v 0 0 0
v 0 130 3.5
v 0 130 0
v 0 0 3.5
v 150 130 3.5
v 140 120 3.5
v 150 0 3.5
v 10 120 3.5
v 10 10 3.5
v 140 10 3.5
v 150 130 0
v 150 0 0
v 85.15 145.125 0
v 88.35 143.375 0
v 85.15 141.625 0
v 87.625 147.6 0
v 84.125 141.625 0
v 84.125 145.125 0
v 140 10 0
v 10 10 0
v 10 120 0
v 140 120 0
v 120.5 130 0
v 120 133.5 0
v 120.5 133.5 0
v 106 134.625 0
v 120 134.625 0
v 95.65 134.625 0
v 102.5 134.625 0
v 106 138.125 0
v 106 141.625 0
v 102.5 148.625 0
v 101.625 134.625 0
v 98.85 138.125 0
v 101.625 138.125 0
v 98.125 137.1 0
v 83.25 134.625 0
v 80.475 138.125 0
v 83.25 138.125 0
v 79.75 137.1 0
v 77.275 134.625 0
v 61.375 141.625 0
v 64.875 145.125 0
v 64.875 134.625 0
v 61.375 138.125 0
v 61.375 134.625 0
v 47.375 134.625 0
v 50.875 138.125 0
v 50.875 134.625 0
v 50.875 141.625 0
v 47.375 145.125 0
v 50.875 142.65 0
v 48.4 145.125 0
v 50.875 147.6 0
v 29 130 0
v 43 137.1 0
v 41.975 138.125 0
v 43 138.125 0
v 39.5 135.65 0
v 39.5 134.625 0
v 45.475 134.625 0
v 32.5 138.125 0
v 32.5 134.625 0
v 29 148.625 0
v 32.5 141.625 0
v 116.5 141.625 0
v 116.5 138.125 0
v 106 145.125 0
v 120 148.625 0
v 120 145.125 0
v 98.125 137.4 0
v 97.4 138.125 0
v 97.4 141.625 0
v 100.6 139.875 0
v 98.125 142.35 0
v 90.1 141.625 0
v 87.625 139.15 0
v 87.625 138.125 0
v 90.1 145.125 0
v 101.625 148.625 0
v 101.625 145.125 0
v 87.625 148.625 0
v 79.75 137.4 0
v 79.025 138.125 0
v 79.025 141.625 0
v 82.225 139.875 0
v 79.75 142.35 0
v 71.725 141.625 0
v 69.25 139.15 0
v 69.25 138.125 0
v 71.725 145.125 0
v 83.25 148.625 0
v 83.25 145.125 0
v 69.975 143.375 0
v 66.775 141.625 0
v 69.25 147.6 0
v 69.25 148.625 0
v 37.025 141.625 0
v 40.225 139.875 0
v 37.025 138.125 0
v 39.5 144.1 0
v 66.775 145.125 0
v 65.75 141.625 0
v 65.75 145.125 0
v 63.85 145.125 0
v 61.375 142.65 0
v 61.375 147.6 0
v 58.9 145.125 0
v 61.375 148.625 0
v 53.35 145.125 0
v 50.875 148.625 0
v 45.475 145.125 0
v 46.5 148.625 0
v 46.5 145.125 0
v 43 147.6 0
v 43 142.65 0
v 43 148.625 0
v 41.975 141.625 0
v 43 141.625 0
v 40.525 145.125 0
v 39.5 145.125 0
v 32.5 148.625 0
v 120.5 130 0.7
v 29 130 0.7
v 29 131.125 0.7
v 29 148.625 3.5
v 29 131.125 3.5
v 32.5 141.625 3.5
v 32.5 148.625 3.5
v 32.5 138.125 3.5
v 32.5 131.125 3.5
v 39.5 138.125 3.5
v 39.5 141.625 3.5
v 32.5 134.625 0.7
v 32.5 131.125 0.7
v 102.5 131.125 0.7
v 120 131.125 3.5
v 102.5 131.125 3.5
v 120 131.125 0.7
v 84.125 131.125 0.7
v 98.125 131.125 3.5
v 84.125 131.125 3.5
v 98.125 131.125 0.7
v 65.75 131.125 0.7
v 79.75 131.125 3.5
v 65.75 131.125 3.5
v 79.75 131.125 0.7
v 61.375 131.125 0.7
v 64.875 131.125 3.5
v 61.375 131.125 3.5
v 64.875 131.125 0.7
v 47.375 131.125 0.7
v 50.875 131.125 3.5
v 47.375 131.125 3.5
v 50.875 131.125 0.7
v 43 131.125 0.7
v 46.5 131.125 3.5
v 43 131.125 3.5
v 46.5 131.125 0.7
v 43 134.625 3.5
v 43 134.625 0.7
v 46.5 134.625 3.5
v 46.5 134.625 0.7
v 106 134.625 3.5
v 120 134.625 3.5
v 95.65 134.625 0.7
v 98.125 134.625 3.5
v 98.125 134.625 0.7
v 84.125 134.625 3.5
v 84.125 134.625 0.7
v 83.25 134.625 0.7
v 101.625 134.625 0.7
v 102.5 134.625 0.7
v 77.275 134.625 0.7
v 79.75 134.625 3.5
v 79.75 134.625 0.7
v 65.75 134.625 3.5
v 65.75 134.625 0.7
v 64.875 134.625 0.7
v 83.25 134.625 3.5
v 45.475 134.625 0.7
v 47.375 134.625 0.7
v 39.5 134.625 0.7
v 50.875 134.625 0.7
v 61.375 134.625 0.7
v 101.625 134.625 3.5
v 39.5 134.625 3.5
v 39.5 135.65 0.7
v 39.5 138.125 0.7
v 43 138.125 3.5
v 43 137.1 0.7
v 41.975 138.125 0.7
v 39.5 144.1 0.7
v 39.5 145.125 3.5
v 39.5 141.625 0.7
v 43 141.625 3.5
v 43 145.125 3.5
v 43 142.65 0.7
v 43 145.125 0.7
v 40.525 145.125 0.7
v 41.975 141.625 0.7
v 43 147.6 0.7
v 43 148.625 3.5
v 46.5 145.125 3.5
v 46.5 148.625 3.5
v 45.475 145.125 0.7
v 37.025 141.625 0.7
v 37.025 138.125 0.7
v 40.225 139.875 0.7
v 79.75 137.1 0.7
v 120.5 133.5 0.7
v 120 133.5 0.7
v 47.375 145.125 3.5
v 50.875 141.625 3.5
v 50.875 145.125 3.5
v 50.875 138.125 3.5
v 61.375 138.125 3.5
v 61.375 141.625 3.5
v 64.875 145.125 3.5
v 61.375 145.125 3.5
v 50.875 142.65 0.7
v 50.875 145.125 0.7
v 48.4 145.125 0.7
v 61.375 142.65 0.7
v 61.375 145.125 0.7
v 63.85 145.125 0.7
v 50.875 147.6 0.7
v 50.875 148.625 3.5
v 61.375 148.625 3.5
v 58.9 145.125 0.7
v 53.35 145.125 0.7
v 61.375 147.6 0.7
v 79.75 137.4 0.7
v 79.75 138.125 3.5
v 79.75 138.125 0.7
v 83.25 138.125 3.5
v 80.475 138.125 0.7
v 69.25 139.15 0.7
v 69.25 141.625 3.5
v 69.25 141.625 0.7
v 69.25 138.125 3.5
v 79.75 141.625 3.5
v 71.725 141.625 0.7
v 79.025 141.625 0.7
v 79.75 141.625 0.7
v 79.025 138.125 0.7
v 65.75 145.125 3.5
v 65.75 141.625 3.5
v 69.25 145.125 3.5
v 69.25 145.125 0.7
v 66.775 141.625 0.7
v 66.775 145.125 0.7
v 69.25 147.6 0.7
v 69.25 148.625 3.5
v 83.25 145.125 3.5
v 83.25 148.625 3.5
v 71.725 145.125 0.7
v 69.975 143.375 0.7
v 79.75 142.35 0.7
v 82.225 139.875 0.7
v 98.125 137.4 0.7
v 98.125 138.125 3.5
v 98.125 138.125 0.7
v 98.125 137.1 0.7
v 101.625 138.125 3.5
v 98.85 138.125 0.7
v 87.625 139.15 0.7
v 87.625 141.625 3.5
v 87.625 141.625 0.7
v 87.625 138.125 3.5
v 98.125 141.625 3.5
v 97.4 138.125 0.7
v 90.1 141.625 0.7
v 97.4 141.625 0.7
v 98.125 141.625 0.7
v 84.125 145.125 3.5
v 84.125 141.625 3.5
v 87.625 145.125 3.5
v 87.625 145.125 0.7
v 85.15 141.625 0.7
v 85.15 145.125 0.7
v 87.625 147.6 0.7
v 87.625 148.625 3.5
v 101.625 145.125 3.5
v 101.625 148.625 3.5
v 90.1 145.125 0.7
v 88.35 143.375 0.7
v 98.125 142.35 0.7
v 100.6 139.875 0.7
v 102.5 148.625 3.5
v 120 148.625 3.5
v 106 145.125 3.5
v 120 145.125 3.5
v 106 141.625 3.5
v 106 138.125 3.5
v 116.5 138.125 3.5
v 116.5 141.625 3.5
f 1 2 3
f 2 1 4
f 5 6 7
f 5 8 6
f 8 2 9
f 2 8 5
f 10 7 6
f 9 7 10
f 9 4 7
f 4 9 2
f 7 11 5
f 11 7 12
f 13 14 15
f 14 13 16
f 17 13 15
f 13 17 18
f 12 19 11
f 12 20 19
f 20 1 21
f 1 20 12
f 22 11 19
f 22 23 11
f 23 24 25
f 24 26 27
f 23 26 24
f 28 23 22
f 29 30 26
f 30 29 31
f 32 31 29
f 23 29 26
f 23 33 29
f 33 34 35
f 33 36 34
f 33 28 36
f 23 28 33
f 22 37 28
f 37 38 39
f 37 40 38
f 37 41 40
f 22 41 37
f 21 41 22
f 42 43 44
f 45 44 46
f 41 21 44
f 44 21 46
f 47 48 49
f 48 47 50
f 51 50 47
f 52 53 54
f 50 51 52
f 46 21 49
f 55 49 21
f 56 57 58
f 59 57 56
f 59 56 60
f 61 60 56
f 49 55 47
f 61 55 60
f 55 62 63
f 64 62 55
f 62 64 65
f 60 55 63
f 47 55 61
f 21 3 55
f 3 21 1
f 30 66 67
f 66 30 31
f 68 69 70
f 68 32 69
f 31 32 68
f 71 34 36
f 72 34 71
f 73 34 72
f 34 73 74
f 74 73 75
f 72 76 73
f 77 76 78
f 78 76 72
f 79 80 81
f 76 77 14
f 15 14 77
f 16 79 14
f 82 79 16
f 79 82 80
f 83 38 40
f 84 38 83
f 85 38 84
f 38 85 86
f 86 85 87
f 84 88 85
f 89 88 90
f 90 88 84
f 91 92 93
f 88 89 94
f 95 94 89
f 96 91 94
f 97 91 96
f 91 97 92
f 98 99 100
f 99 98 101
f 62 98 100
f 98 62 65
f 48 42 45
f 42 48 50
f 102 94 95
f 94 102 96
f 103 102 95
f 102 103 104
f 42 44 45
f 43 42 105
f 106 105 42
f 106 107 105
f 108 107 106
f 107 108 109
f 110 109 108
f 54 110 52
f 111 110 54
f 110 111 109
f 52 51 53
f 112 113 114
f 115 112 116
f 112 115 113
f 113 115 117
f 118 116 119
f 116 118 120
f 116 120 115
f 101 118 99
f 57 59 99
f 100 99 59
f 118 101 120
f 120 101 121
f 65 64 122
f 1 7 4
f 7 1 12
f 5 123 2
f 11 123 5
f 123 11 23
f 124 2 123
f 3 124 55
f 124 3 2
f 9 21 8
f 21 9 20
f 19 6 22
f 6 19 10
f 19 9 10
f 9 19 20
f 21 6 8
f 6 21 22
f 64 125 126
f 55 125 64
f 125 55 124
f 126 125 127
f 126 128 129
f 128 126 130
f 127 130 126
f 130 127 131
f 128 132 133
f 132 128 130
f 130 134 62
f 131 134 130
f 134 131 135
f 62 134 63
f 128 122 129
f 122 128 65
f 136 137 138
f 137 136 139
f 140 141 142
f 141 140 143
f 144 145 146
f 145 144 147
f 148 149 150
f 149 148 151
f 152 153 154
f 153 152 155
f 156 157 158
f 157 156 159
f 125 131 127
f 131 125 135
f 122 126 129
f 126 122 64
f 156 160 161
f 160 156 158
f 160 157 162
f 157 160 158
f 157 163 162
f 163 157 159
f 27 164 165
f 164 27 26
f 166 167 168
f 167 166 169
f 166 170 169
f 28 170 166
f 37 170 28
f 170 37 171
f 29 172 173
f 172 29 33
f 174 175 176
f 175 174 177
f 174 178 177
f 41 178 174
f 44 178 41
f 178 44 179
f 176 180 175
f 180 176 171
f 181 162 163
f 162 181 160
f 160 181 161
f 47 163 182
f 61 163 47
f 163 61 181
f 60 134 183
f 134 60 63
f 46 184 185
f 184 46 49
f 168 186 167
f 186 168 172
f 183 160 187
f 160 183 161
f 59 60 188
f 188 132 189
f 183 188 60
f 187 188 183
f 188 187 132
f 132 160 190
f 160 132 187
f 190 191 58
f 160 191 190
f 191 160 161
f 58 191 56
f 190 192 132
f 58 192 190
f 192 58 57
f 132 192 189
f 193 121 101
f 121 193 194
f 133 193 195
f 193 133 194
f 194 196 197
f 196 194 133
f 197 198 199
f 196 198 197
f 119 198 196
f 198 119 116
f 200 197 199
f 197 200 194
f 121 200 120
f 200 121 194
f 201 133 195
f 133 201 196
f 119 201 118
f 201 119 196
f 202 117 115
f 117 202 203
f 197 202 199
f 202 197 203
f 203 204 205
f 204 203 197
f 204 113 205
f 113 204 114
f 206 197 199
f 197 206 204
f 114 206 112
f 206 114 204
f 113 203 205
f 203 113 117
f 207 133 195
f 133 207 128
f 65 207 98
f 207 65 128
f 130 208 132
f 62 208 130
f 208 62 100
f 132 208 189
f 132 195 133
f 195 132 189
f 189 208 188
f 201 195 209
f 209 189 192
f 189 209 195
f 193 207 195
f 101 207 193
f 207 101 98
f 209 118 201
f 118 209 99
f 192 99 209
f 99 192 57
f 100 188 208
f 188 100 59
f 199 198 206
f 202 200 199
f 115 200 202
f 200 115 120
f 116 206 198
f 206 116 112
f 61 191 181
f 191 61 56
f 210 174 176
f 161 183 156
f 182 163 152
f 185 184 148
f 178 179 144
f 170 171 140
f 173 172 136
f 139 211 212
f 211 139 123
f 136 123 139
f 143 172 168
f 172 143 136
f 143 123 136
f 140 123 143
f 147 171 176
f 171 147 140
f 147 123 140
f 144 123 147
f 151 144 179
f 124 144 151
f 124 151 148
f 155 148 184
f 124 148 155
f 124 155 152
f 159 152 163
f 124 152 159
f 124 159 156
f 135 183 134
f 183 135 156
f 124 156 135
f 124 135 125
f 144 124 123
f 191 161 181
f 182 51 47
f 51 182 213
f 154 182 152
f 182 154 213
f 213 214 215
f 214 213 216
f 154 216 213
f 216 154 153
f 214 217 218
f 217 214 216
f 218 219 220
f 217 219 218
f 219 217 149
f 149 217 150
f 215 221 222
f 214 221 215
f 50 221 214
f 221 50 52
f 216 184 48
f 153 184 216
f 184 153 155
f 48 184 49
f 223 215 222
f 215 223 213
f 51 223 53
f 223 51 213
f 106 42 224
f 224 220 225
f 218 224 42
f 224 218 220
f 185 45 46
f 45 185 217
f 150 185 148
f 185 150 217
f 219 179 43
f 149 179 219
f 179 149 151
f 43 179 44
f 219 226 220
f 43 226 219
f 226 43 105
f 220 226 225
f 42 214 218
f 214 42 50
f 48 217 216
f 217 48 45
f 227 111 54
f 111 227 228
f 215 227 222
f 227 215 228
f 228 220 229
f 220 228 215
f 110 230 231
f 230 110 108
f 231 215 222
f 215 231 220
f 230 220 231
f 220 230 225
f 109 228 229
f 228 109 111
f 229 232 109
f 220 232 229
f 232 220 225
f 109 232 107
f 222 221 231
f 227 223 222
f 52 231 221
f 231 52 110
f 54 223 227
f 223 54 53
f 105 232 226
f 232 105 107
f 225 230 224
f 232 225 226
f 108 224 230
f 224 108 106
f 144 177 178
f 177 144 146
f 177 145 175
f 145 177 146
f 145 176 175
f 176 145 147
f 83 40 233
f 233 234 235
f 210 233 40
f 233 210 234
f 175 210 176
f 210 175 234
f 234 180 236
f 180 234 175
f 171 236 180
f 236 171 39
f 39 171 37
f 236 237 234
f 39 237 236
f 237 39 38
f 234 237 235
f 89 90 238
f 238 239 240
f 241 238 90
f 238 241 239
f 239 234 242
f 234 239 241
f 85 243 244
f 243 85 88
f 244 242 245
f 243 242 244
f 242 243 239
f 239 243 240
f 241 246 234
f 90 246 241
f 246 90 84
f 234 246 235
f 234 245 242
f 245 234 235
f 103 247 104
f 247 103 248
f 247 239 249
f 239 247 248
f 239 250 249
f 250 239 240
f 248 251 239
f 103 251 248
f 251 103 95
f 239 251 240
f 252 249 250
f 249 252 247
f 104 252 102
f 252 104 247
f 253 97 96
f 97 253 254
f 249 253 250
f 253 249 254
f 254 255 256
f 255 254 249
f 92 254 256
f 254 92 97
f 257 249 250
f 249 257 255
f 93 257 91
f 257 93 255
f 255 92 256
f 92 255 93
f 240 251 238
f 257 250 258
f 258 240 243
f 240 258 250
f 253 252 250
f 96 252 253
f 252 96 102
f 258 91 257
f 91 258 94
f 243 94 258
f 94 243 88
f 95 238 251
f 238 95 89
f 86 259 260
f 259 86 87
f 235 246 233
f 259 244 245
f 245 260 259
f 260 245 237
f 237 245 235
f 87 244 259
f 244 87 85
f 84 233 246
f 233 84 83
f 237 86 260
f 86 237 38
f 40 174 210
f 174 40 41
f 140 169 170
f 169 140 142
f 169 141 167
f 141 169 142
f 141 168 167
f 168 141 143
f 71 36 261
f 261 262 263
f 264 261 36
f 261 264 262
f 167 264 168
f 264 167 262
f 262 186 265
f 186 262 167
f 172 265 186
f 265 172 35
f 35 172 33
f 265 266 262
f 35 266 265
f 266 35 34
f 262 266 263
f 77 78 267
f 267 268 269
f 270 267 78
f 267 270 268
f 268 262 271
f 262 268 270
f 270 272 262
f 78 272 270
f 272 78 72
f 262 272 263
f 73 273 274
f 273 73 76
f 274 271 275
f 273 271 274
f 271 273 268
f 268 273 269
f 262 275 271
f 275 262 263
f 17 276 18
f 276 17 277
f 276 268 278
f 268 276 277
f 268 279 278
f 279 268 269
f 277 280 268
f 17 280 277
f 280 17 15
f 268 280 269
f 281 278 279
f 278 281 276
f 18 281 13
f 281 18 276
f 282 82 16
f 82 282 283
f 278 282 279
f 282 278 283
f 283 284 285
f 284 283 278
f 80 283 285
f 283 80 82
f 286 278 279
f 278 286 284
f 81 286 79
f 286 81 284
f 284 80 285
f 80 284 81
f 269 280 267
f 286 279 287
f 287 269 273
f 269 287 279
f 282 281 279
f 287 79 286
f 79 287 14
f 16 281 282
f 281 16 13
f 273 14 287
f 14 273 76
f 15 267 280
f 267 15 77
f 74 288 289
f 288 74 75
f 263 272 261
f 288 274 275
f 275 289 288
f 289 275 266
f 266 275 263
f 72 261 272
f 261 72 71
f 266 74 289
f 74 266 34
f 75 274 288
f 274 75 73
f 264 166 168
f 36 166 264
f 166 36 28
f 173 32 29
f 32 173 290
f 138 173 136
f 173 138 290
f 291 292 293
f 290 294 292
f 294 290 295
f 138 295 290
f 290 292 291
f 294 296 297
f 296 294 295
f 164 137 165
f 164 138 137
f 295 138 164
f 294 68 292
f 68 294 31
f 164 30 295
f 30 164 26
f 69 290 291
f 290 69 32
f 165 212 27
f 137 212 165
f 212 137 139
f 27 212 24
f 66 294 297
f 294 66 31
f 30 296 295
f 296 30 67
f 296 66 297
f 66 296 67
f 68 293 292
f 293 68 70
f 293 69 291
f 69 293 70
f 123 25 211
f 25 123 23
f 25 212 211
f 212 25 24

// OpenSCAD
gap = 0.0;
xsize = 3.5;
ysize = xsize;
zsize = 3.5;
magnetHeight = 2.0;
magnetDiam = 4.0;
letterGap = 0.25;
letterSize = 5;
wordOffset = 0.25;

module 3dPixel(xpos, ypos)
{
    translate(v=[xpos*(gap+xsize),ypos*(gap+ysize),0])
    cube(size=[xsize, ysize, zsize]);
}
module RingHole(xpos, ypos)
{
    difference(){
        3dPixel(xpos, ypos);
        translate(v=[xpos*(gap+xsize)+0.5*xsize,ypos*(gap+ysize)+0.5*ysize,0.5*zsize])
        cylinder(h=1.1*zsize, r=0.4*xsize, $fn=20, center=true);
    }
}
module PixelSteg(x1, y1, x2, y2, rot=45)
{
    translate(v=[(x1+x2)/2*(gap+xsize)+0.5*xsize,(y1+y2)/2*(gap+ysize)+0.5*ysize,zsize/5/2])
    rotate([0,0,rot])
    cube(size=[((x1!=x2)?max(abs(x1-x2),1):max(abs(y1-y2),1))*xsize, ysize, zsize/5],center=true);
}

module MagnetHole(xpos, ypos)
{
    translate(v=[xpos*(gap+xsize)+0.5*xsize,ypos*(gap+ysize)+0.5*ysize,magnetHeight/2])
    cylinder(h=magnetHeight, r=magnetDiam/2, $fn=20, center=true);
}

module hshbLogo()
{
    union()
    {
        3dPixel(3,0);
        3dPixel(4,0);
        3dPixel(12,0);
        3dPixel(4,1);
        3dPixel(13,1);
        3dPixel(5,2);
        3dPixel(13,2);
        3dPixel(5,3);
        3dPixel(6,3);
        3dPixel(13,3);
        3dPixel(15,3);
        for(i = [5:9])
        {
            3dPixel(i,4);
        }
        3dPixel(12,4);
        3dPixel(13,4);
        3dPixel(14,4);
        3dPixel(1,5);
        3dPixel(2,5);
        for(i = [5:14])
        {
            3dPixel(i,5);
        }
        for(i = [1:13])
        {
            3dPixel(i,6);
        }
        for(i = [2:4])
        {
            3dPixel(i,7);
        }
        for(i = [6:12])
        {
            3dPixel(i,7);
        }
        3dPixel(2,8);
        3dPixel(3,8);
        3dPixel(7,8);
        3dPixel(10,8);
        3dPixel(2,9);
        3dPixel(7,9);
        3dPixel(10,9);
        for(i = [5:11])
        {
            3dPixel(i,10);
        }
        for(i = [4:10])
        {
            3dPixel(i,11);
        }
        3dPixel(12,11);
        3dPixel(7,12);
        3dPixel(9,12);
        3dPixel(10,12);
        for(i = [6:11])
        {
            3dPixel(i,13);
        }
        3dPixel(5,14);
        3dPixel(8,14);
        3dPixel(12,14);
        3dPixel(7,15);
        3dPixel(9,15);
        for(i = [6:7])
        {
            3dPixel(i,16);
        }
        for(i = [9:11])
        {
            3dPixel(i,16);
        }
        3dPixel(8,16);
        3dPixel(8,15);
        //RingHole(8,15);
        3dPixel(5,17);
        3dPixel(6,17);
        3dPixel(9,17);
        3dPixel(10,17);
        3dPixel(6,18);
    }
    PixelSteg(4,1,5,2);
    PixelSteg(12,0,13,1);
    PixelSteg(14,3,15,4);
    PixelSteg(11,10,12,11);
    PixelSteg(11,13,12,14);
    PixelSteg(6,13,5,14);
}
module A(offsetX, offsetY)
{
    3dPixel(0+offsetX, 0+offsetY);
    3dPixel(0+offsetX, 1+offsetY);
    3dPixel(0+offsetX, 2+offsetY);
    3dPixel(0+offsetX, 3+offsetY);
    3dPixel(4+offsetX, 0+offsetY);
    3dPixel(4+offsetX, 1+offsetY);
    3dPixel(4+offsetX, 2+offsetY);
    3dPixel(4+offsetX, 3+offsetY);
    3dPixel(1+offsetX, 2+offsetY);
    3dPixel(2+offsetX, 2+offsetY);
    3dPixel(3+offsetX, 2+offsetY);
    3dPixel(1+offsetX, 4+offsetY);
    3dPixel(2+offsetX, 4+offsetY);
    3dPixel(3+offsetX, 4+offsetY);
    PixelSteg(0+offsetX,3+offsetY,1+offsetX,4+offsetY);
    PixelSteg(3+offsetX,4+offsetY,4+offsetX,3+offsetY);
}
module B(offsetX, offsetY)
{
    3dPixel(0+offsetX, 0+offsetY);
    3dPixel(0+offsetX, 1+offsetY);
    3dPixel(0+offsetX, 2+offsetY);
    3dPixel(0+offsetX, 3+offsetY);
    3dPixel(0+offsetX, 4+offsetY);
    3dPixel(4+offsetX, 1+offsetY);
    3dPixel(4+offsetX, 3+offsetY);
    3dPixel(1+offsetX, 2+offsetY);
    3dPixel(2+offsetX, 2+offsetY);
    3dPixel(3+offsetX, 2+offsetY);
    3dPixel(1+offsetX, 4+offsetY);
    3dPixel(2+offsetX, 4+offsetY);
    3dPixel(3+offsetX, 4+offsetY);
    3dPixel(1+offsetX, 0+offsetY);
    3dPixel(2+offsetX, 0+offsetY);
    3dPixel(3+offsetX, 0+offsetY);
    PixelSteg(3+offsetX,2+offsetY,4+offsetX,1+offsetY);
    PixelSteg(3+offsetX,2+offsetY,4+offsetX,3+offsetY);
    PixelSteg(3+offsetX,4+offsetY,4+offsetX,3+offsetY);
    PixelSteg(3+offsetX,0+offsetY,4+offsetX,1+offsetY);
}
module C(offsetX, offsetY)
{
    3dPixel(0+offsetX, 1+offsetY);
    3dPixel(0+offsetX, 2+offsetY);
    3dPixel(0+offsetX, 3+offsetY);
    3dPixel(4+offsetX, 1+offsetY);
    3dPixel(4+offsetX, 3+offsetY);
    3dPixel(1+offsetX, 0+offsetY);
    3dPixel(2+offsetX, 0+offsetY);
    3dPixel(3+offsetX, 0+offsetY);
    3dPixel(1+offsetX, 4+offsetY);
    3dPixel(2+offsetX, 4+offsetY);
    3dPixel(3+offsetX, 4+offsetY);
    PixelSteg(0+offsetX,1+offsetY,1+offsetX,0+offsetY);
    PixelSteg(0+offsetX,3+offsetY,1+offsetX,4+offsetY);
    PixelSteg(3+offsetX,0+offsetY,4+offsetX,1+offsetY);
    PixelSteg(3+offsetX,4+offsetY,4+offsetX,3+offsetY);
}
module D(offsetX, offsetY)
{
    3dPixel(0+offsetX, 0+offsetY);
    3dPixel(0+offsetX, 1+offsetY);
    3dPixel(0+offsetX, 2+offsetY);
    3dPixel(0+offsetX, 3+offsetY);
    3dPixel(0+offsetX, 4+offsetY);
    3dPixel(4+offsetX, 1+offsetY);
    3dPixel(4+offsetX, 2+offsetY);
    3dPixel(4+offsetX, 3+offsetY);
    3dPixel(1+offsetX, 0+offsetY);
    3dPixel(2+offsetX, 0+offsetY);
    3dPixel(3+offsetX, 0+offsetY);
    3dPixel(1+offsetX, 4+offsetY);
    3dPixel(2+offsetX, 4+offsetY);
    3dPixel(3+offsetX, 4+offsetY);
    PixelSteg(3+offsetX,0+offsetY,4+offsetX,1+offsetY);
    PixelSteg(3+offsetX,4+offsetY,4+offsetX,3+offsetY);
}
module E(offsetX, offsetY)
{
    3dPixel(0+offsetX, 0+offsetY);
    3dPixel(0+offsetX, 1+offsetY);
    3dPixel(0+offsetX, 2+offsetY);
    3dPixel(0+offsetX, 3+offsetY);
    3dPixel(0+offsetX, 4+offsetY);
    3dPixel(1+offsetX, 0+offsetY);
    3dPixel(2+offsetX, 0+offsetY);
    3dPixel(3+offsetX, 0+offsetY);
    3dPixel(4+offsetX, 0+offsetY);
    3dPixel(1+offsetX, 2+offsetY);
    3dPixel(2+offsetX, 2+offsetY);
    3dPixel(3+offsetX, 2+offsetY);
    3dPixel(1+offsetX, 4+offsetY);
    3dPixel(2+offsetX, 4+offsetY);
    3dPixel(3+offsetX, 4+offsetY);
    3dPixel(4+offsetX, 4+offsetY);
}
module F(offsetX, offsetY)
{
    3dPixel(0+offsetX, 0+offsetY);
    3dPixel(0+offsetX, 1+offsetY);
    3dPixel(0+offsetX, 2+offsetY);
    3dPixel(0+offsetX, 3+offsetY);
    3dPixel(0+offsetX, 4+offsetY);
    3dPixel(1+offsetX, 2+offsetY);
    3dPixel(2+offsetX, 2+offsetY);
    3dPixel(3+offsetX, 2+offsetY);
    3dPixel(1+offsetX, 4+offsetY);
    3dPixel(2+offsetX, 4+offsetY);
    3dPixel(3+offsetX, 4+offsetY);
    3dPixel(4+offsetX, 4+offsetY);
}
module G(offsetX, offsetY)
{
    3dPixel(0+offsetX, 2+offsetY);
    3dPixel(0+offsetX, 1+offsetY);
    3dPixel(4+offsetX, 2+offsetY);
    3dPixel(0+offsetX, 3+offsetY);
    3dPixel(4+offsetX, 1+offsetY);
    3dPixel(4+offsetX, 4+offsetY);
    3dPixel(2+offsetX, 2+offsetY);
    3dPixel(3+offsetX, 2+offsetY);
    3dPixel(1+offsetX, 4+offsetY);
    3dPixel(2+offsetX, 4+offsetY);
    3dPixel(3+offsetX, 4+offsetY);
    3dPixel(1+offsetX, 0+offsetY);
    3dPixel(2+offsetX, 0+offsetY);
    3dPixel(3+offsetX, 0+offsetY);
    PixelSteg(1+offsetX,0+offsetY,0+offsetX,1+offsetY);
    PixelSteg(3+offsetX,0+offsetY,4+offsetX,1+offsetY);
    PixelSteg(0+offsetX,3+offsetY,1+offsetX,4+offsetY);
}
module H(offsetX, offsetY)
{
    3dPixel(0+offsetX, 0+offsetY);
    3dPixel(0+offsetX, 1+offsetY);
    3dPixel(0+offsetX, 2+offsetY);
    3dPixel(0+offsetX, 3+offsetY);
    3dPixel(0+offsetX, 4+offsetY);
    3dPixel(4+offsetX, 0+offsetY);
    3dPixel(4+offsetX, 1+offsetY);
    3dPixel(4+offsetX, 2+offsetY);
    3dPixel(4+offsetX, 3+offsetY);
    3dPixel(4+offsetX, 4+offsetY);
    3dPixel(1+offsetX, 2+offsetY);
    3dPixel(2+offsetX, 2+offsetY);
    3dPixel(3+offsetX, 2+offsetY);
}
module I(offsetX, offsetY)
{
    3dPixel(2+offsetX, 0+offsetY);
    3dPixel(2+offsetX, 1+offsetY);
    3dPixel(2+offsetX, 2+offsetY);
    3dPixel(2+offsetX, 3+offsetY);
    3dPixel(2+offsetX, 4+offsetY);
    3dPixel(0+offsetX, 4+offsetY);
    3dPixel(1+offsetX, 4+offsetY);
    3dPixel(3+offsetX, 4+offsetY);
    3dPixel(4+offsetX, 4+offsetY);
    3dPixel(0+offsetX, 0+offsetY);
    3dPixel(1+offsetX, 0+offsetY);
    3dPixel(3+offsetX, 0+offsetY);
    3dPixel(4+offsetX, 0+offsetY);
}
module J(offsetX, offsetY)
{
    3dPixel(4+offsetX, 1+offsetY);
    3dPixel(4+offsetX, 2+offsetY);
    3dPixel(4+offsetX, 3+offsetY);
    3dPixel(1+offsetX, 0+offsetY);
    3dPixel(2+offsetX, 0+offsetY);
    3dPixel(3+offsetX, 0+offsetY);
    3dPixel(4+offsetX, 4+offsetY);
    3dPixel(0+offsetX, 1+offsetY);
    3dPixel(0+offsetX, 2+offsetY);
    3dPixel(3+offsetX, 4+offsetY);
    PixelSteg(3+offsetX,0+offsetY,4+offsetX,1+offsetY);
    PixelSteg(0+offsetX,1+offsetY,1+offsetX,0+offsetY);
}
module K(offsetX, offsetY)
{
    3dPixel(0+offsetX, 0+offsetY);
    3dPixel(0+offsetX, 1+offsetY);
    3dPixel(0+offsetX, 2+offsetY);
    3dPixel(0+offsetX, 3+offsetY);
    3dPixel(0+offsetX, 4+offsetY);
    3dPixel(4+offsetX, 0+offsetY);
    3dPixel(3+offsetX, 1+offsetY);
    3dPixel(3+offsetX, 3+offsetY);
    3dPixel(4+offsetX, 4+offsetY);
    3dPixel(1+offsetX, 2+offsetY);
    3dPixel(2+offsetX, 2+offsetY);
    PixelSteg(2+offsetX,2+offsetY,3+offsetX,3+offsetY);
    PixelSteg(2+offsetX,2+offsetY,3+offsetX,1+offsetY);
    PixelSteg(3+offsetX,3+offsetY,4+offsetX,4+offsetY);
    PixelSteg(3+offsetX,1+offsetY,4+offsetX,0+offsetY);
}
module L(offsetX, offsetY)
{
    3dPixel(0+offsetX, 0+offsetY);
    3dPixel(0+offsetX, 1+offsetY);
    3dPixel(0+offsetX, 2+offsetY);
    3dPixel(0+offsetX, 3+offsetY);
    3dPixel(0+offsetX, 4+offsetY);
    3dPixel(1+offsetX, 0+offsetY);
    3dPixel(2+offsetX, 0+offsetY);
    3dPixel(3+offsetX, 0+offsetY);
    3dPixel(4+offsetX, 0+offsetY);
}
module M(offsetX, offsetY)
{
    3dPixel(0+offsetX, 0+offsetY);
    3dPixel(0+offsetX, 1+offsetY);
    3dPixel(0+offsetX, 2+offsetY);
    3dPixel(0+offsetX, 3+offsetY);
    3dPixel(0+offsetX, 4+offsetY);
    3dPixel(4+offsetX, 0+offsetY);
    3dPixel(4+offsetX, 1+offsetY);
    3dPixel(4+offsetX, 2+offsetY);
    3dPixel(4+offsetX, 3+offsetY);
    3dPixel(4+offsetX, 4+offsetY);
    3dPixel(1+offsetX, 3+offsetY);
    3dPixel(2+offsetX, 2+offsetY);
    3dPixel(3+offsetX, 3+offsetY);
    PixelSteg(1+offsetX,3+offsetY,2+offsetX,2+offsetY);
    PixelSteg(2+offsetX,2+offsetY,3+offsetX,3+offsetY);
}
module N(offsetX, offsetY)
{
    3dPixel(0+offsetX, 0+offsetY);
    3dPixel(0+offsetX, 1+offsetY);
    3dPixel(0+offsetX, 2+offsetY);
    3dPixel(0+offsetX, 3+offsetY);
    3dPixel(0+offsetX, 4+offsetY);
    3dPixel(4+offsetX, 0+offsetY);
    3dPixel(4+offsetX, 1+offsetY);
    3dPixel(4+offsetX, 2+offsetY);
    3dPixel(4+offsetX, 3+offsetY);
    3dPixel(4+offsetX, 4+offsetY);
    3dPixel(1+offsetX, 3+offsetY);
    3dPixel(2+offsetX, 2+offsetY);
    3dPixel(3+offsetX, 1+offsetY);
    PixelSteg(1+offsetX,3+offsetY,2+offsetX,2+offsetY);
    PixelSteg(2+offsetX,2+offsetY,3+offsetX,1+offsetY);
}
module O(offsetX, offsetY)
{
    3dPixel(0+offsetX, 1+offsetY);
    3dPixel(0+offsetX, 2+offsetY);
    3dPixel(0+offsetX, 3+offsetY);
    3dPixel(4+offsetX, 1+offsetY);
    3dPixel(4+offsetX, 2+offsetY);
    3dPixel(4+offsetX, 3+offsetY);
    3dPixel(1+offsetX, 0+offsetY);
    3dPixel(2+offsetX, 0+offsetY);
    3dPixel(3+offsetX, 0+offsetY);
    3dPixel(1+offsetX, 4+offsetY);
    3dPixel(2+offsetX, 4+offsetY);
    3dPixel(3+offsetX, 4+offsetY);
    PixelSteg(0+offsetX,1+offsetY,1+offsetX,0+offsetY);
    PixelSteg(0+offsetX,3+offsetY,1+offsetX,4+offsetY);
    PixelSteg(3+offsetX,0+offsetY,4+offsetX,1+offsetY);
    PixelSteg(3+offsetX,4+offsetY,4+offsetX,3+offsetY);
}
module P(offsetX, offsetY)
{
    3dPixel(0+offsetX, 0+offsetY);
    3dPixel(0+offsetX, 1+offsetY);
    3dPixel(0+offsetX, 2+offsetY);
    3dPixel(0+offsetX, 3+offsetY);
    3dPixel(0+offsetX, 4+offsetY);
    3dPixel(4+offsetX, 3+offsetY);
    3dPixel(1+offsetX, 2+offsetY);
    3dPixel(2+offsetX, 2+offsetY);
    3dPixel(3+offsetX, 2+offsetY);
    3dPixel(1+offsetX, 4+offsetY);
    3dPixel(2+offsetX, 4+offsetY);
    3dPixel(3+offsetX, 4+offsetY);
    PixelSteg(3+offsetX,2+offsetY,4+offsetX,3+offsetY);
    PixelSteg(3+offsetX,4+offsetY,4+offsetX,3+offsetY);
}
module Q(offsetX, offsetY)
{
    3dPixel(0+offsetX, 1+offsetY);
    3dPixel(0+offsetX, 2+offsetY);
    3dPixel(0+offsetX, 3+offsetY);
    3dPixel(4+offsetX, 0+offsetY);
    3dPixel(4+offsetX, 2+offsetY);
    3dPixel(4+offsetX, 3+offsetY);
    3dPixel(1+offsetX, 0+offsetY);
    3dPixel(2+offsetX, 0+offsetY);
    3dPixel(3+offsetX, 1+offsetY);
    3dPixel(1+offsetX, 4+offsetY);
    3dPixel(2+offsetX, 4+offsetY);
    3dPixel(3+offsetX, 4+offsetY);
    PixelSteg(0+offsetX,1+offsetY,1+offsetX,0+offsetY);
    PixelSteg(0+offsetX,3+offsetY,1+offsetX,4+offsetY);
    PixelSteg(3+offsetX,0+offsetY,4+offsetX,1+offsetY);
    PixelSteg(3+offsetX,4+offsetY,4+offsetX,3+offsetY);
    PixelSteg(2+offsetX,0+offsetY,3+offsetX,1+offsetY);
    PixelSteg(3+offsetX,1+offsetY,4+offsetX,2+offsetY);
}
module R(offsetX, offsetY)
{
    3dPixel(0+offsetX, 0+offsetY);
    3dPixel(0+offsetX, 1+offsetY);
    3dPixel(0+offsetX, 2+offsetY);
    3dPixel(0+offsetX, 3+offsetY);
    3dPixel(0+offsetX, 4+offsetY);
    3dPixel(4+offsetX, 0+offsetY);
    3dPixel(4+offsetX, 1+offsetY);
    3dPixel(4+offsetX, 3+offsetY);
    3dPixel(1+offsetX, 2+offsetY);
    3dPixel(2+offsetX, 2+offsetY);
    3dPixel(3+offsetX, 2+offsetY);
    3dPixel(1+offsetX, 4+offsetY);
    3dPixel(2+offsetX, 4+offsetY);
    3dPixel(3+offsetX, 4+offsetY);
    PixelSteg(3+offsetX,2+offsetY,4+offsetX,1+offsetY);
    PixelSteg(3+offsetX,2+offsetY,4+offsetX,3+offsetY);
    PixelSteg(3+offsetX,4+offsetY,4+offsetX,3+offsetY);
}
module S(offsetX, offsetY)
{
    3dPixel(0+offsetX, 0+offsetY);
    3dPixel(1+offsetX, 0+offsetY);
    3dPixel(2+offsetX, 0+offsetY);
    3dPixel(3+offsetX, 0+offsetY);
    3dPixel(4+offsetX, 1+offsetY);
    3dPixel(1+offsetX, 2+offsetY);
    3dPixel(2+offsetX, 2+offsetY);
    3dPixel(3+offsetX, 2+offsetY);
    3dPixel(0+offsetX, 3+offsetY);
    3dPixel(1+offsetX, 4+offsetY);
    3dPixel(2+offsetX, 4+offsetY);
    3dPixel(3+offsetX, 4+offsetY);
    3dPixel(4+offsetX, 4+offsetY);
    PixelSteg(0+offsetX,3+offsetY,1+offsetX,4+offsetY);
    PixelSteg(0+offsetX,3+offsetY,1+offsetX,2+offsetY);
    PixelSteg(3+offsetX,3+offsetY,4+offsetX,1+offsetY);
    PixelSteg(3+offsetX,0+offsetY,4+offsetX,1+offsetY);
}
module T(offsetX, offsetY)
{
    3dPixel(2+offsetX, 0+offsetY);
    3dPixel(2+offsetX, 1+offsetY);
    3dPixel(2+offsetX, 2+offsetY);
    3dPixel(2+offsetX, 3+offsetY);
    3dPixel(2+offsetX, 4+offsetY);
    3dPixel(0+offsetX, 4+offsetY);
    3dPixel(1+offsetX, 4+offsetY);
    3dPixel(3+offsetX, 4+offsetY);
    3dPixel(4+offsetX, 4+offsetY);
}
module U(offsetX, offsetY)
{
    3dPixel(0+offsetX, 1+offsetY);
    3dPixel(0+offsetX, 2+offsetY);
    3dPixel(0+offsetX, 3+offsetY);
    3dPixel(4+offsetX, 1+offsetY);
    3dPixel(4+offsetX, 2+offsetY);
    3dPixel(4+offsetX, 3+offsetY);
    3dPixel(1+offsetX, 0+offsetY);
    3dPixel(2+offsetX, 0+offsetY);
    3dPixel(3+offsetX, 0+offsetY);
    3dPixel(0+offsetX, 4+offsetY);
    3dPixel(4+offsetX, 4+offsetY);
    PixelSteg(0+offsetX,1+offsetY,1+offsetX,0+offsetY);
    PixelSteg(3+offsetX,0+offsetY,4+offsetX,1+offsetY);
}
module V(offsetX, offsetY)
{
    3dPixel(0+offsetX, 2+offsetY);
    3dPixel(0+offsetX, 3+offsetY);
    3dPixel(4+offsetX, 2+offsetY);
    3dPixel(4+offsetX, 3+offsetY);
    3dPixel(1+offsetX, 1+offsetY);
    3dPixel(2+offsetX, 0+offsetY);
    3dPixel(3+offsetX, 1+offsetY);
    3dPixel(0+offsetX, 4+offsetY);
    3dPixel(4+offsetX, 4+offsetY);
    PixelSteg(1+offsetX,1+offsetY,2+offsetX,0+offsetY);
    PixelSteg(2+offsetX,0+offsetY,3+offsetX,1+offsetY);
    PixelSteg(0+offsetX,2+offsetY,1+offsetX,1+offsetY);
    PixelSteg(4+offsetX,2+offsetY,3+offsetX,1+offsetY);
}
module W(offsetX, offsetY)
{
    3dPixel(0+offsetX, 0+offsetY);
    3dPixel(0+offsetX, 1+offsetY);
    3dPixel(0+offsetX, 2+offsetY);
    3dPixel(0+offsetX, 3+offsetY);
    3dPixel(0+offsetX, 4+offsetY);
    3dPixel(4+offsetX, 0+offsetY);
    3dPixel(4+offsetX, 1+offsetY);
    3dPixel(4+offsetX, 2+offsetY);
    3dPixel(4+offsetX, 3+offsetY);
    3dPixel(4+offsetX, 4+offsetY);
    3dPixel(1+offsetX, 1+offsetY);
    3dPixel(2+offsetX, 2+offsetY);
    3dPixel(3+offsetX, 1+offsetY);
    PixelSteg(1+offsetX,1+offsetY,2+offsetX,2+offsetY);
    PixelSteg(2+offsetX,2+offsetY,3+offsetX,1+offsetY);
}
module X(offsetX, offsetY)
{
    3dPixel(0+offsetX, 0+offsetY);
    3dPixel(1+offsetX, 1+offsetY);
    3dPixel(0+offsetX, 4+offsetY);
    3dPixel(4+offsetX, 0+offsetY);
    3dPixel(3+offsetX, 3+offsetY);
    3dPixel(4+offsetX, 4+offsetY);
    3dPixel(1+offsetX, 3+offsetY);
    3dPixel(2+offsetX, 2+offsetY);
    3dPixel(3+offsetX, 1+offsetY);
    PixelSteg(1+offsetX,3+offsetY,2+offsetX,2+offsetY);
    PixelSteg(2+offsetX,2+offsetY,3+offsetX,1+offsetY);
    PixelSteg(0+offsetX,4+offsetY,1+offsetX,3+offsetY);
    PixelSteg(3+offsetX,1+offsetY,4+offsetX,0+offsetY);
    PixelSteg(0+offsetX,0+offsetY,1+offsetX,1+offsetY);
    PixelSteg(1+offsetX,1+offsetY,2+offsetX,2+offsetY);
    PixelSteg(2+offsetX,2+offsetY,3+offsetX,3+offsetY);
    PixelSteg(3+offsetX,3+offsetY,4+offsetX,4+offsetY);
}
module Y(offsetX, offsetY)
{
    3dPixel(0+offsetX, 4+offsetY);
    3dPixel(2+offsetX, 0+offsetY);
    3dPixel(3+offsetX, 3+offsetY);
    3dPixel(4+offsetX, 4+offsetY);
    3dPixel(1+offsetX, 3+offsetY);
    3dPixel(2+offsetX, 2+offsetY);
    3dPixel(2+offsetX, 1+offsetY);
    PixelSteg(1+offsetX,3+offsetY,2+offsetX,2+offsetY);
    PixelSteg(0+offsetX,4+offsetY,1+offsetX,3+offsetY);
    PixelSteg(2+offsetX,2+offsetY,3+offsetX,3+offsetY);
    PixelSteg(3+offsetX,3+offsetY,4+offsetX,4+offsetY);
}
module Z(offsetX, offsetY)
{
    3dPixel(2+offsetX, 0+offsetY);
    3dPixel(1+offsetX, 1+offsetY);
    3dPixel(2+offsetX, 2+offsetY);
    3dPixel(3+offsetX, 3+offsetY);
    3dPixel(2+offsetX, 4+offsetY);
    3dPixel(0+offsetX, 4+offsetY);
    3dPixel(1+offsetX, 4+offsetY);
    3dPixel(3+offsetX, 4+offsetY);
    3dPixel(4+offsetX, 4+offsetY);
    3dPixel(0+offsetX, 0+offsetY);
    3dPixel(1+offsetX, 0+offsetY);
    3dPixel(3+offsetX, 0+offsetY);
    3dPixel(4+offsetX, 0+offsetY);
    PixelSteg(1+offsetX,1+offsetY,2+offsetX,2+offsetY);
    PixelSteg(2+offsetX,2+offsetY,3+offsetX,3+offsetY);
}
module LetterSteg(x1, y1, x2, y2, offset)
{
    PixelSteg(x1+offset*(letterSize+letterGap),y1-(letterSize+wordOffset),x2+(offset+1)*(letterSize+letterGap),y2-(letterSize+wordOffset),0);
}
module NameThomas()
{
    T(0*(letterSize+letterGap),-(letterSize+wordOffset));
    H(1*(letterSize+letterGap),-(letterSize+wordOffset));
    O(2*(letterSize+letterGap),-(letterSize+wordOffset));
    M(3*(letterSize+letterGap),-(letterSize+wordOffset));
    A(4*(letterSize+letterGap),-(letterSize+wordOffset));
    S(5*(letterSize+letterGap),-(letterSize+wordOffset));
    //T-H
    LetterSteg(4, 4, 0, 4, 0);
    LetterSteg(2, 0, 0, 0, 0);
    //H-O
    LetterSteg(4, 3, 0, 3, 1);
    LetterSteg(4, 1, 0, 1, 1);
    //O-M
    LetterSteg(4, 3, 0, 3, 2);
    LetterSteg(4, 1, 0, 1, 2);
    //M-A
    LetterSteg(4, 3, 0, 3, 3);
    LetterSteg(4, 1, 0, 1, 3);
    //A-S
    LetterSteg(4, 3, 0, 3, 4);
    LetterSteg(4, 0, 0, 0, 4);
}
module NameLars()
{
    L(0*(letterSize+letterGap),-(letterSize+wordOffset));
    A(1*(letterSize+letterGap),-(letterSize+wordOffset));
    R(2*(letterSize+letterGap),-(letterSize+wordOffset));
    S(3*(letterSize+letterGap),-(letterSize+wordOffset));
    //L-A
    PixelSteg(0+0*(letterSize+letterGap),3-(letterSize+wordOffset),0+1*(letterSize+letterGap),3-(letterSize+wordOffset),0);
    PixelSteg(4+0*(letterSize+letterGap),0-(letterSize+wordOffset),0+1*(letterSize+letterGap),0-(letterSize+wordOffset),0);
    //A-R
    PixelSteg(4+1*(letterSize+letterGap),3-(letterSize+wordOffset),0+2*(letterSize+letterGap),3-(letterSize+wordOffset),0);
    PixelSteg(4+1*(letterSize+letterGap),0-(letterSize+wordOffset),0+2*(letterSize+letterGap),0-(letterSize+wordOffset),0);
    //R-S
    PixelSteg(4+2*(letterSize+letterGap),3-(letterSize+wordOffset),0+3*(letterSize+letterGap),3-(letterSize+wordOffset),0);
    PixelSteg(4+2*(letterSize+letterGap),0-(letterSize+wordOffset),0+3*(letterSize+letterGap),0-(letterSize+wordOffset),0);
}
module NameDaniel()
{
    D(0*(letterSize+letterGap),-(letterSize+wordOffset));
    A(1*(letterSize+letterGap),-(letterSize+wordOffset));
    N(2*(letterSize+letterGap),-(letterSize+wordOffset));
    I(3*(letterSize+letterGap),-(letterSize+wordOffset));
    E(4*(letterSize+letterGap),-(letterSize+wordOffset));
    L(5*(letterSize+letterGap),-(letterSize+wordOffset));
    //D-A
    PixelSteg(4+0*(letterSize+letterGap),3-(letterSize+wordOffset),0+1*(letterSize+letterGap),3-(letterSize+wordOffset),0);
    PixelSteg(4+0*(letterSize+letterGap),1-(letterSize+wordOffset),0+1*(letterSize+letterGap),1-(letterSize+wordOffset),0);
    //A-N
    PixelSteg(4+1*(letterSize+letterGap),3-(letterSize+wordOffset),0+2*(letterSize+letterGap),3-(letterSize+wordOffset),0);
    PixelSteg(4+1*(letterSize+letterGap),1-(letterSize+wordOffset),0+2*(letterSize+letterGap),1-(letterSize+wordOffset),0);
    //N-I
    PixelSteg(4+2*(letterSize+letterGap),4-(letterSize+wordOffset),0+3*(letterSize+letterGap),4-(letterSize+wordOffset),0);
    PixelSteg(4+2*(letterSize+letterGap),0-(letterSize+wordOffset),0+3*(letterSize+letterGap),0-(letterSize+wordOffset),0);
    //I-E
    PixelSteg(4+3*(letterSize+letterGap),4-(letterSize+wordOffset),0+4*(letterSize+letterGap),4-(letterSize+wordOffset),0);
    PixelSteg(4+3*(letterSize+letterGap),0-(letterSize+wordOffset),0+4*(letterSize+letterGap),0-(letterSize+wordOffset),0);
    //E-L
    PixelSteg(4+4*(letterSize+letterGap),4-(letterSize+wordOffset),0+5*(letterSize+letterGap),4-(letterSize+wordOffset),0);
    PixelSteg(4+4*(letterSize+letterGap),0-(letterSize+wordOffset),0+5*(letterSize+letterGap),0-(letterSize+wordOffset),0);
}
module NameTobi()
{
    T(0*(letterSize+letterGap),-(letterSize+wordOffset));
    O(1*(letterSize+letterGap),-(letterSize+wordOffset));
    B(2*(letterSize+letterGap),-(letterSize+wordOffset));
    I(3*(letterSize+letterGap),-(letterSize+wordOffset));
    //T-O
    PixelSteg(4+0*(letterSize+letterGap),4-(letterSize+wordOffset),1+1*(letterSize+letterGap),4-(letterSize+wordOffset),0);
    PixelSteg(2+0*(letterSize+letterGap),0-(letterSize+wordOffset),1+1*(letterSize+letterGap),0-(letterSize+wordOffset),0);
    //O-B
    PixelSteg(4+1*(letterSize+letterGap),3-(letterSize+wordOffset),0+2*(letterSize+letterGap),3-(letterSize+wordOffset),0);
    PixelSteg(4+1*(letterSize+letterGap),1-(letterSize+wordOffset),0+2*(letterSize+letterGap),1-(letterSize+wordOffset),0);
    //B-I
    PixelSteg(3+2*(letterSize+letterGap),4-(letterSize+wordOffset),0+3*(letterSize+letterGap),4-(letterSize+wordOffset),0);
    PixelSteg(3+2*(letterSize+letterGap),0-(letterSize+wordOffset),0+3*(letterSize+letterGap),0-(letterSize+wordOffset),0);
}
module NameKaren()
{
    K(0*(letterSize+letterGap),-(letterSize+wordOffset));
    A(1*(letterSize+letterGap),-(letterSize+wordOffset));
    R(2*(letterSize+letterGap),-(letterSize+wordOffset));
    E(3*(letterSize+letterGap),-(letterSize+wordOffset));
    N(4*(letterSize+letterGap),-(letterSize+wordOffset));
    //K-A
    PixelSteg(4+0*(letterSize+letterGap),4-(letterSize+wordOffset),1+1*(letterSize+letterGap),4-(letterSize+wordOffset),0);
    PixelSteg(4+0*(letterSize+letterGap),0-(letterSize+wordOffset),0+1*(letterSize+letterGap),0-(letterSize+wordOffset),0);
    //A-R
    PixelSteg(3+1*(letterSize+letterGap),4-(letterSize+wordOffset),0+2*(letterSize+letterGap),4-(letterSize+wordOffset),0);
    PixelSteg(4+1*(letterSize+letterGap),0-(letterSize+wordOffset),0+2*(letterSize+letterGap),0-(letterSize+wordOffset),0);
    //R-E
    PixelSteg(3+2*(letterSize+letterGap),4-(letterSize+wordOffset),0+3*(letterSize+letterGap),4-(letterSize+wordOffset),0);
    PixelSteg(4+2*(letterSize+letterGap),0-(letterSize+wordOffset),0+3*(letterSize+letterGap),0-(letterSize+wordOffset),0);
    //E-N
    PixelSteg(4+3*(letterSize+letterGap),4-(letterSize+wordOffset),0+4*(letterSize+letterGap),4-(letterSize+wordOffset),0);
    PixelSteg(4+3*(letterSize+letterGap),0-(letterSize+wordOffset),0+4*(letterSize+letterGap),0-(letterSize+wordOffset),0);
}
module NameJens()
{
    J(0*(letterSize+letterGap),-(letterSize+wordOffset));
    E(1*(letterSize+letterGap),-(letterSize+wordOffset));
    N(2*(letterSize+letterGap),-(letterSize+wordOffset));
    S(3*(letterSize+letterGap),-(letterSize+wordOffset));
    //J-E
    LetterSteg(4, 4, 0, 4, 0);
    LetterSteg(2, 0, 0, 0, 0);
    //E-N
    LetterSteg(4, 4, 0, 4, 1);
    LetterSteg(4, 0, 0, 0, 1);
    //N-S
    LetterSteg(4, 3, 0, 3, 2);
    LetterSteg(4, 0, 0, 0, 2);
}
module NameSteve()
{
    S(0*(letterSize+letterGap),-(letterSize+wordOffset));
    T(1*(letterSize+letterGap),-(letterSize+wordOffset));
    E(2*(letterSize+letterGap),-(letterSize+wordOffset));
    V(3*(letterSize+letterGap),-(letterSize+wordOffset));
    E(4*(letterSize+letterGap),-(letterSize+wordOffset));
    //S-T
    LetterSteg(4, 4, 0, 4, 0);
    LetterSteg(2, 0, 2, 0, 0);
    //T-E
    LetterSteg(4, 4, 0, 4, 1);
    LetterSteg(2, 0, 0, 0, 1);
    //E-V
    LetterSteg(4, 4, 2, 4, 2);
    LetterSteg(4, 0, 2, 0, 2);
    //V-E
    LetterSteg(2, 4, 0, 4, 3);
    LetterSteg(2, 0, 0, 0, 3);
}
module NameAndree()
{
    A(0*(letterSize+letterGap),-(letterSize+wordOffset));
    N(1*(letterSize+letterGap),-(letterSize+wordOffset));
    D(2*(letterSize+letterGap),-(letterSize+wordOffset));
    R(3*(letterSize+letterGap),-(letterSize+wordOffset));
    E(4*(letterSize+letterGap),-(letterSize+wordOffset));
    E(5*(letterSize+letterGap),-(letterSize+wordOffset));
    //A-N
    LetterSteg(3, 4, 2, 4, 0);
    LetterSteg(4, 0, 0, 0, 0);
    //N-D
    LetterSteg(2, 4, 0, 4, 1);
    LetterSteg(4, 0, 0, 0, 1);
    //D-R
    LetterSteg(3, 4, 0, 4, 2);
    LetterSteg(3, 0, 0, 0, 2);
    //R-E
    LetterSteg(3, 4, 0, 4, 3);
    LetterSteg(4, 0, 0, 0, 3);
    //E-E
    LetterSteg(4, 4, 0, 4, 4);
    LetterSteg(4, 0, 0, 0, 4);
}
module NameStefan()
{
    S(0*(letterSize+letterGap),-(letterSize+wordOffset));
    T(1*(letterSize+letterGap),-(letterSize+wordOffset));
    E(2*(letterSize+letterGap),-(letterSize+wordOffset));
    F(3*(letterSize+letterGap),-(letterSize+wordOffset));
    A(4*(letterSize+letterGap),-(letterSize+wordOffset));
    N(5*(letterSize+letterGap),-(letterSize+wordOffset));
    //S-T
    LetterSteg(4, 4, 0, 4, 0);
    LetterSteg(3, 0, 2, 0, 0);
    //T-E
    LetterSteg(4, 4, 0, 4, 1);
    LetterSteg(2, 0, 0, 0, 1);
    //E-F
    LetterSteg(4, 4, 0, 4, 2);
    LetterSteg(4, 0, 0, 0, 2);
    //F-A
    LetterSteg(4, 4, 1, 4, 3);
    LetterSteg(0, 0, 0, 0, 3);
    //A-N
    LetterSteg(3, 4, 0, 4, 4);
    LetterSteg(4, 0, 0, 0, 4);
}

module Buchstabentest()
{
    A(0*(letterSize+letterGap),-(letterSize+wordOffset));
    B(1*(letterSize+letterGap),-(letterSize+wordOffset));
    C(2*(letterSize+letterGap),-(letterSize+wordOffset));
    D(3*(letterSize+letterGap),-(letterSize+wordOffset));
    E(4*(letterSize+letterGap),-(letterSize+wordOffset));
    F(5*(letterSize+letterGap),-(letterSize+wordOffset));
    G(6*(letterSize+letterGap),-(letterSize+wordOffset));
    H(7*(letterSize+letterGap),-(letterSize+wordOffset));
    I(8*(letterSize+letterGap),-(letterSize+wordOffset));
    J(9*(letterSize+letterGap),-(letterSize+wordOffset));
    K(10*(letterSize+letterGap),-(letterSize+wordOffset));
    L(11*(letterSize+letterGap),-(letterSize+wordOffset));
    M(12*(letterSize+letterGap),-(letterSize+wordOffset));
    N(13*(letterSize+letterGap),-(letterSize+wordOffset));
    O(14*(letterSize+letterGap),-(letterSize+wordOffset));
    P(15*(letterSize+letterGap),-(letterSize+wordOffset));
    Q(16*(letterSize+letterGap),-(letterSize+wordOffset));
    R(17*(letterSize+letterGap),-(letterSize+wordOffset));
    S(18*(letterSize+letterGap),-(letterSize+wordOffset));
    T(19*(letterSize+letterGap),-(letterSize+wordOffset));
    U(20*(letterSize+letterGap),-(letterSize+wordOffset));
    V(21*(letterSize+letterGap),-(letterSize+wordOffset));
    W(22*(letterSize+letterGap),-(letterSize+wordOffset));
    X(23*(letterSize+letterGap),-(letterSize+wordOffset));
    Y(24*(letterSize+letterGap),-(letterSize+wordOffset));
    Z(25*(letterSize+letterGap),-(letterSize+wordOffset));
}

//Logo mit Loch f?r Magnet
//difference()
//{
//    hshbLogo();
//    MagnetHole(8,6);
//}

//Namen setzen
//Buchstabenanzahl: x-Offset
//4: 0.1
//6: -0.35
//translate(v=[0.1*(xsize*letterSize+letterGap),0,0])
//    scale([0.75,0.75,1])
//        NameThomas();
//translate(v=[-0.2*(xsize*letterSize+letterGap),0,0])
//    scale([0.75,0.75,1])
//        NameKaren();
//translate(v=[0.1*(xsize*letterSize+letterGap),0,0])
//    scale([0.75,0.75,1])
//        NameJens();
//translate(v=[-0.2*(xsize*letterSize+letterGap),0,0])
//    scale([0.75,0.75,1])
//        NameSteve();
//translate(v=[-0.5*(xsize*letterSize+letterGap),0,0])
//    scale([0.75,0.75,1])
//        NameAndree();
//translate(v=[-0.5*(xsize*letterSize+letterGap),0,0])
//    scale([0.75,0.75,1])
//        NameStefan();

//Namen mit Logo verbinden
//translate([-1.0*xsize,0,0])
//    PixelSteg(5,0,5,-1,90);
//translate([-0.5*xsize,0,0])
//    PixelSteg(12,0,13,-1,0);

module Herzlich()
{
    H(0*(letterSize+letterGap),-(letterSize+wordOffset));
    E(1*(letterSize+letterGap),-(letterSize+wordOffset));
    R(2*(letterSize+letterGap),-(letterSize+wordOffset));
    Z(3*(letterSize+letterGap),-(letterSize+wordOffset));
    L(4*(letterSize+letterGap),-(letterSize+wordOffset));
    I(5*(letterSize+letterGap),-(letterSize+wordOffset));
    C(6*(letterSize+letterGap),-(letterSize+wordOffset));
    H(7*(letterSize+letterGap),-(letterSize+wordOffset));

    LetterSteg(0, 4, 2, 4, 0);
    LetterSteg(0, 0, 2, 0, 0);
    LetterSteg(2, 4, 2, 4, 1);
    LetterSteg(2, 0, 2, 0, 1);
    LetterSteg(2, 4, 2, 4, 2);
    LetterSteg(2, 0, 2, 0, 2);
    LetterSteg(2, 4, 2, 4, 3);
    LetterSteg(2, 0, 2, 0, 3);
    LetterSteg(2, 4, 2, 4, 4);
    LetterSteg(2, 0, 2, 0, 4);
    LetterSteg(2, 4, 2, 4, 5);
    LetterSteg(2, 0, 2, 0, 5);
    LetterSteg(2, 4, 4, 4, 6);
    LetterSteg(2, 0, 4, 0, 6);
}

module Willkommen()
{
    W(0*(letterSize+letterGap),-(letterSize+wordOffset));
    I(1*(letterSize+letterGap),-(letterSize+wordOffset));
    L(2*(letterSize+letterGap),-(letterSize+wordOffset));
    L(3*(letterSize+letterGap),-(letterSize+wordOffset));
    K(4*(letterSize+letterGap),-(letterSize+wordOffset));
    O(5*(letterSize+letterGap),-(letterSize+wordOffset));
    M(6*(letterSize+letterGap),-(letterSize+wordOffset));
    M(7*(letterSize+letterGap),-(letterSize+wordOffset));
    E(8*(letterSize+letterGap),-(letterSize+wordOffset));
    N(9*(letterSize+letterGap),-(letterSize+wordOffset));

    LetterSteg(0, 4, 2, 4, 0);
    LetterSteg(0, 0, 2, 0, 0);
    LetterSteg(2, 4, 2, 4, 1);
    LetterSteg(2, 0, 2, 0, 1);
    LetterSteg(2, 4, 2, 4, 2);
    LetterSteg(2, 0, 2, 0, 2);
    LetterSteg(2, 4, 2, 4, 3);
    LetterSteg(2, 0, 2, 0, 3);
    LetterSteg(2, 4, 2, 4, 4);
    LetterSteg(2, 0, 2, 0, 4);
    LetterSteg(2, 4, 2, 4, 5);
    LetterSteg(2, 0, 2, 0, 5);
    LetterSteg(2, 4, 2, 4, 6);
    LetterSteg(2, 0, 2, 0, 6);
    LetterSteg(2, 4, 2, 4, 7);
    LetterSteg(2, 0, 2, 0, 7);
    LetterSteg(2, 4, 4, 4, 8);
    LetterSteg(2, 0, 4, 0, 8);
}

module HerzlichWillkommen()
{
    Herzlich();

translate([-(letterSize*xsize+2*letterGap),-(letterSize*ysize+2*letterGap),0])
    Willkommen();
}

//HerzlichWillkommen();

module Bin()
{
    B(0*(letterSize+letterGap),-(letterSize+wordOffset));
    I(1*(letterSize+letterGap),-(letterSize+wordOffset));
    N(2*(letterSize+letterGap),-(letterSize+wordOffset));

    LetterSteg(0, 4, 2, 4, 0);
    LetterSteg(0, 0, 2, 0, 0);
    LetterSteg(2, 4, 4, 4, 1);
    LetterSteg(2, 0, 4, 0, 1);
}

module Gleich()
{
    G(0*(letterSize+letterGap),-(letterSize+wordOffset));
    L(1*(letterSize+letterGap),-(letterSize+wordOffset));
    E(2*(letterSize+letterGap),-(letterSize+wordOffset));
    I(3*(letterSize+letterGap),-(letterSize+wordOffset));
    C(4*(letterSize+letterGap),-(letterSize+wordOffset));
    H(5*(letterSize+letterGap),-(letterSize+wordOffset));

    LetterSteg(0, 4, 2, 4, 0);
    LetterSteg(0, 0, 2, 0, 0);
    LetterSteg(2, 4, 2, 4, 1);
    LetterSteg(2, 0, 2, 0, 1);
    LetterSteg(2, 4, 2, 4, 2);
    LetterSteg(2, 0, 2, 0, 2);
    LetterSteg(2, 4, 2, 4, 3);
    LetterSteg(2, 0, 2, 0, 3);
    LetterSteg(2, 4, 4, 4, 4);
    LetterSteg(2, 0, 4, 0, 4);
}

module Zurueck()
{
    Z(0*(letterSize+letterGap),-(letterSize+wordOffset));
    U(1*(letterSize+letterGap),-(letterSize+wordOffset));
    R(2*(letterSize+letterGap),-(letterSize+wordOffset));
    U(3*(letterSize+letterGap),-(letterSize+wordOffset));
    E(4*(letterSize+letterGap),-(letterSize+wordOffset));
    C(5*(letterSize+letterGap),-(letterSize+wordOffset));
    K(6*(letterSize+letterGap),-(letterSize+wordOffset));

    LetterSteg(0, 4, 2, 4, 0);
    LetterSteg(0, 0, 2, 0, 0);
    LetterSteg(2, 4, 2, 4, 1);
    LetterSteg(2, 0, 2, 0, 1);
    LetterSteg(2, 4, 2, 4, 2);
    LetterSteg(2, 0, 2, 0, 2);
    LetterSteg(2, 4, 2, 4, 3);
    LetterSteg(2, 0, 2, 0, 3);
    LetterSteg(2, 4, 2, 4, 4);
    LetterSteg(2, 0, 2, 0, 4);
    LetterSteg(2, 4, 4, 4, 5);
    LetterSteg(2, 0, 4, 0, 5);
}

module BinGleichZurueck()
{
    Bin();
    translate([3*(letterSize*ysize+letterGap)+7*letterGap,0,0])
        Gleich();
    translate([(letterSize*xsize+2*letterGap),-(letterSize*ysize+2*letterGap),0])
        Zurueck();
}

//BinGleichZurueck();

module Wir()
{
    W(0*(letterSize+letterGap),-(letterSize+wordOffset));
    I(1*(letterSize+letterGap),-(letterSize+wordOffset));
    R(2*(letterSize+letterGap),-(letterSize+wordOffset));

    LetterSteg(0, 4, 2, 4, 0);
    LetterSteg(0, 0, 2, 0, 0);
    LetterSteg(2, 4, 4, 4, 1);
    LetterSteg(2, 0, 4, 0, 1);
}

module Sind()
{
    S(0*(letterSize+letterGap),-(letterSize+wordOffset));
    I(1*(letterSize+letterGap),-(letterSize+wordOffset));
    N(2*(letterSize+letterGap),-(letterSize+wordOffset));
    D(3*(letterSize+letterGap),-(letterSize+wordOffset));

    LetterSteg(0, 4, 2, 4, 0);
    LetterSteg(0, 0, 2, 0, 0);
    LetterSteg(2, 4, 2, 4, 1);
    LetterSteg(2, 0, 2, 0, 1);
    LetterSteg(2, 4, 4, 4, 2);
    LetterSteg(2, 0, 4, 0, 2);
}

module Gegenueber()
{
    G(0*(letterSize+letterGap),-(letterSize+wordOffset));
    E(1*(letterSize+letterGap),-(letterSize+wordOffset));
    G(2*(letterSize+letterGap),-(letterSize+wordOffset));
    E(3*(letterSize+letterGap),-(letterSize+wordOffset));
    N(4*(letterSize+letterGap),-(letterSize+wordOffset));
    U(5*(letterSize+letterGap),-(letterSize+wordOffset));
    E(6*(letterSize+letterGap),-(letterSize+wordOffset));
    B(7*(letterSize+letterGap),-(letterSize+wordOffset));
    E(8*(letterSize+letterGap),-(letterSize+wordOffset));
    R(9*(letterSize+letterGap),-(letterSize+wordOffset));

    LetterSteg(0, 4, 2, 4, 0);
    LetterSteg(0, 0, 2, 0, 0);
    LetterSteg(2, 4, 2, 4, 1);
    LetterSteg(2, 0, 2, 0, 1);
    LetterSteg(2, 4, 2, 4, 2);
    LetterSteg(2, 0, 2, 0, 2);
    LetterSteg(2, 4, 2, 4, 3);
    LetterSteg(2, 0, 2, 0, 3);
    LetterSteg(2, 4, 2, 4, 4);
    LetterSteg(2, 0, 2, 0, 4);
    LetterSteg(2, 4, 2, 4, 5);
    LetterSteg(2, 0, 2, 0, 5);
    LetterSteg(2, 4, 2, 4, 6);
    LetterSteg(2, 0, 2, 0, 6);
    LetterSteg(2, 4, 2, 4, 7);
    LetterSteg(2, 0, 2, 0, 7);
    LetterSteg(2, 4, 4, 4, 8);
    LetterSteg(2, 0, 4, 0, 8);
}

module WirSindGegenueber()
{
    Wir();
    translate([3*(letterSize*ysize+letterGap)+7*letterGap,0,0])
        Sind();
    translate([-1.5*(letterSize*xsize+2*letterGap),-(letterSize*ysize+2*letterGap),0])
        Gegenueber();
}

//WirSindGegenueber();

module Spendenbox()
{
    S(0*(letterSize+letterGap),-(letterSize+wordOffset));
    P(1*(letterSize+letterGap),-(letterSize+wordOffset));
    E(2*(letterSize+letterGap),-(letterSize+wordOffset));
    N(3*(letterSize+letterGap),-(letterSize+wordOffset));
    D(4*(letterSize+letterGap),-(letterSize+wordOffset));
    E(5*(letterSize+letterGap),-(letterSize+wordOffset));
    N(6*(letterSize+letterGap),-(letterSize+wordOffset));
    B(7*(letterSize+letterGap),-(letterSize+wordOffset));
    O(8*(letterSize+letterGap),-(letterSize+wordOffset));
    X(9*(letterSize+letterGap),-(letterSize+wordOffset));
    
    LetterSteg(2, 4, 2, 4, 0);
    LetterSteg(2, 0, 2, 0, 0);
    LetterSteg(2, 4, 2, 4, 1);
    LetterSteg(2, 0, 2, 0, 1);
    LetterSteg(2, 4, 2, 4, 2);
    LetterSteg(2, 0, 2, 0, 2);
    LetterSteg(2, 4, 2, 4, 3);
    LetterSteg(2, 0, 2, 0, 3);
    LetterSteg(2, 4, 2, 4, 4);
    LetterSteg(2, 0, 2, 0, 4);
    LetterSteg(2, 4, 2, 4, 5);
    LetterSteg(2, 0, 2, 0, 5);
    LetterSteg(2, 4, 2, 4, 6);
    LetterSteg(2, 0, 2, 0, 6);
    LetterSteg(2, 4, 2, 4, 7);
    LetterSteg(2, 0, 2, 0, 7);
    LetterSteg(2, 4, 4, 4, 8);
    LetterSteg(2, 0, 4, 0, 8);
}

//Spendenbox();

module Kasse()
{
    K(0*(letterSize+letterGap),-(letterSize+wordOffset));
    A(1*(letterSize+letterGap),-(letterSize+wordOffset));
    S(2*(letterSize+letterGap),-(letterSize+wordOffset));
    S(3*(letterSize+letterGap),-(letterSize+wordOffset));
    E(4*(letterSize+letterGap),-(letterSize+wordOffset));

    //LetterSteg(4, 4, 2, 4, 0);
    LetterSteg(0, 0, 2, 0, 0);
    //LetterSteg(2, 4, 2, 4, 1);
    LetterSteg(2, 0, 2, 0, 1);
    //LetterSteg(2, 4, 2, 4, 2);
    LetterSteg(2, 0, 2, 0, 2);
    //LetterSteg(2, 4, 2, 4, 3);
    LetterSteg(2, 0, 2, 0, 3);
}

translate([letterSize*5.8,130+letterSize*4-wordOffset*2,0])
    Kasse();
translate([letterSize*5.8,130,0])
    cube([5*5*xsize+4*4*letterGap,ysize,zsize/5]);
difference()
{
    cube([150,130,zsize]);
    translate([10,10,-0.1])
        cube([130,110,zsize+0.2]);
}
